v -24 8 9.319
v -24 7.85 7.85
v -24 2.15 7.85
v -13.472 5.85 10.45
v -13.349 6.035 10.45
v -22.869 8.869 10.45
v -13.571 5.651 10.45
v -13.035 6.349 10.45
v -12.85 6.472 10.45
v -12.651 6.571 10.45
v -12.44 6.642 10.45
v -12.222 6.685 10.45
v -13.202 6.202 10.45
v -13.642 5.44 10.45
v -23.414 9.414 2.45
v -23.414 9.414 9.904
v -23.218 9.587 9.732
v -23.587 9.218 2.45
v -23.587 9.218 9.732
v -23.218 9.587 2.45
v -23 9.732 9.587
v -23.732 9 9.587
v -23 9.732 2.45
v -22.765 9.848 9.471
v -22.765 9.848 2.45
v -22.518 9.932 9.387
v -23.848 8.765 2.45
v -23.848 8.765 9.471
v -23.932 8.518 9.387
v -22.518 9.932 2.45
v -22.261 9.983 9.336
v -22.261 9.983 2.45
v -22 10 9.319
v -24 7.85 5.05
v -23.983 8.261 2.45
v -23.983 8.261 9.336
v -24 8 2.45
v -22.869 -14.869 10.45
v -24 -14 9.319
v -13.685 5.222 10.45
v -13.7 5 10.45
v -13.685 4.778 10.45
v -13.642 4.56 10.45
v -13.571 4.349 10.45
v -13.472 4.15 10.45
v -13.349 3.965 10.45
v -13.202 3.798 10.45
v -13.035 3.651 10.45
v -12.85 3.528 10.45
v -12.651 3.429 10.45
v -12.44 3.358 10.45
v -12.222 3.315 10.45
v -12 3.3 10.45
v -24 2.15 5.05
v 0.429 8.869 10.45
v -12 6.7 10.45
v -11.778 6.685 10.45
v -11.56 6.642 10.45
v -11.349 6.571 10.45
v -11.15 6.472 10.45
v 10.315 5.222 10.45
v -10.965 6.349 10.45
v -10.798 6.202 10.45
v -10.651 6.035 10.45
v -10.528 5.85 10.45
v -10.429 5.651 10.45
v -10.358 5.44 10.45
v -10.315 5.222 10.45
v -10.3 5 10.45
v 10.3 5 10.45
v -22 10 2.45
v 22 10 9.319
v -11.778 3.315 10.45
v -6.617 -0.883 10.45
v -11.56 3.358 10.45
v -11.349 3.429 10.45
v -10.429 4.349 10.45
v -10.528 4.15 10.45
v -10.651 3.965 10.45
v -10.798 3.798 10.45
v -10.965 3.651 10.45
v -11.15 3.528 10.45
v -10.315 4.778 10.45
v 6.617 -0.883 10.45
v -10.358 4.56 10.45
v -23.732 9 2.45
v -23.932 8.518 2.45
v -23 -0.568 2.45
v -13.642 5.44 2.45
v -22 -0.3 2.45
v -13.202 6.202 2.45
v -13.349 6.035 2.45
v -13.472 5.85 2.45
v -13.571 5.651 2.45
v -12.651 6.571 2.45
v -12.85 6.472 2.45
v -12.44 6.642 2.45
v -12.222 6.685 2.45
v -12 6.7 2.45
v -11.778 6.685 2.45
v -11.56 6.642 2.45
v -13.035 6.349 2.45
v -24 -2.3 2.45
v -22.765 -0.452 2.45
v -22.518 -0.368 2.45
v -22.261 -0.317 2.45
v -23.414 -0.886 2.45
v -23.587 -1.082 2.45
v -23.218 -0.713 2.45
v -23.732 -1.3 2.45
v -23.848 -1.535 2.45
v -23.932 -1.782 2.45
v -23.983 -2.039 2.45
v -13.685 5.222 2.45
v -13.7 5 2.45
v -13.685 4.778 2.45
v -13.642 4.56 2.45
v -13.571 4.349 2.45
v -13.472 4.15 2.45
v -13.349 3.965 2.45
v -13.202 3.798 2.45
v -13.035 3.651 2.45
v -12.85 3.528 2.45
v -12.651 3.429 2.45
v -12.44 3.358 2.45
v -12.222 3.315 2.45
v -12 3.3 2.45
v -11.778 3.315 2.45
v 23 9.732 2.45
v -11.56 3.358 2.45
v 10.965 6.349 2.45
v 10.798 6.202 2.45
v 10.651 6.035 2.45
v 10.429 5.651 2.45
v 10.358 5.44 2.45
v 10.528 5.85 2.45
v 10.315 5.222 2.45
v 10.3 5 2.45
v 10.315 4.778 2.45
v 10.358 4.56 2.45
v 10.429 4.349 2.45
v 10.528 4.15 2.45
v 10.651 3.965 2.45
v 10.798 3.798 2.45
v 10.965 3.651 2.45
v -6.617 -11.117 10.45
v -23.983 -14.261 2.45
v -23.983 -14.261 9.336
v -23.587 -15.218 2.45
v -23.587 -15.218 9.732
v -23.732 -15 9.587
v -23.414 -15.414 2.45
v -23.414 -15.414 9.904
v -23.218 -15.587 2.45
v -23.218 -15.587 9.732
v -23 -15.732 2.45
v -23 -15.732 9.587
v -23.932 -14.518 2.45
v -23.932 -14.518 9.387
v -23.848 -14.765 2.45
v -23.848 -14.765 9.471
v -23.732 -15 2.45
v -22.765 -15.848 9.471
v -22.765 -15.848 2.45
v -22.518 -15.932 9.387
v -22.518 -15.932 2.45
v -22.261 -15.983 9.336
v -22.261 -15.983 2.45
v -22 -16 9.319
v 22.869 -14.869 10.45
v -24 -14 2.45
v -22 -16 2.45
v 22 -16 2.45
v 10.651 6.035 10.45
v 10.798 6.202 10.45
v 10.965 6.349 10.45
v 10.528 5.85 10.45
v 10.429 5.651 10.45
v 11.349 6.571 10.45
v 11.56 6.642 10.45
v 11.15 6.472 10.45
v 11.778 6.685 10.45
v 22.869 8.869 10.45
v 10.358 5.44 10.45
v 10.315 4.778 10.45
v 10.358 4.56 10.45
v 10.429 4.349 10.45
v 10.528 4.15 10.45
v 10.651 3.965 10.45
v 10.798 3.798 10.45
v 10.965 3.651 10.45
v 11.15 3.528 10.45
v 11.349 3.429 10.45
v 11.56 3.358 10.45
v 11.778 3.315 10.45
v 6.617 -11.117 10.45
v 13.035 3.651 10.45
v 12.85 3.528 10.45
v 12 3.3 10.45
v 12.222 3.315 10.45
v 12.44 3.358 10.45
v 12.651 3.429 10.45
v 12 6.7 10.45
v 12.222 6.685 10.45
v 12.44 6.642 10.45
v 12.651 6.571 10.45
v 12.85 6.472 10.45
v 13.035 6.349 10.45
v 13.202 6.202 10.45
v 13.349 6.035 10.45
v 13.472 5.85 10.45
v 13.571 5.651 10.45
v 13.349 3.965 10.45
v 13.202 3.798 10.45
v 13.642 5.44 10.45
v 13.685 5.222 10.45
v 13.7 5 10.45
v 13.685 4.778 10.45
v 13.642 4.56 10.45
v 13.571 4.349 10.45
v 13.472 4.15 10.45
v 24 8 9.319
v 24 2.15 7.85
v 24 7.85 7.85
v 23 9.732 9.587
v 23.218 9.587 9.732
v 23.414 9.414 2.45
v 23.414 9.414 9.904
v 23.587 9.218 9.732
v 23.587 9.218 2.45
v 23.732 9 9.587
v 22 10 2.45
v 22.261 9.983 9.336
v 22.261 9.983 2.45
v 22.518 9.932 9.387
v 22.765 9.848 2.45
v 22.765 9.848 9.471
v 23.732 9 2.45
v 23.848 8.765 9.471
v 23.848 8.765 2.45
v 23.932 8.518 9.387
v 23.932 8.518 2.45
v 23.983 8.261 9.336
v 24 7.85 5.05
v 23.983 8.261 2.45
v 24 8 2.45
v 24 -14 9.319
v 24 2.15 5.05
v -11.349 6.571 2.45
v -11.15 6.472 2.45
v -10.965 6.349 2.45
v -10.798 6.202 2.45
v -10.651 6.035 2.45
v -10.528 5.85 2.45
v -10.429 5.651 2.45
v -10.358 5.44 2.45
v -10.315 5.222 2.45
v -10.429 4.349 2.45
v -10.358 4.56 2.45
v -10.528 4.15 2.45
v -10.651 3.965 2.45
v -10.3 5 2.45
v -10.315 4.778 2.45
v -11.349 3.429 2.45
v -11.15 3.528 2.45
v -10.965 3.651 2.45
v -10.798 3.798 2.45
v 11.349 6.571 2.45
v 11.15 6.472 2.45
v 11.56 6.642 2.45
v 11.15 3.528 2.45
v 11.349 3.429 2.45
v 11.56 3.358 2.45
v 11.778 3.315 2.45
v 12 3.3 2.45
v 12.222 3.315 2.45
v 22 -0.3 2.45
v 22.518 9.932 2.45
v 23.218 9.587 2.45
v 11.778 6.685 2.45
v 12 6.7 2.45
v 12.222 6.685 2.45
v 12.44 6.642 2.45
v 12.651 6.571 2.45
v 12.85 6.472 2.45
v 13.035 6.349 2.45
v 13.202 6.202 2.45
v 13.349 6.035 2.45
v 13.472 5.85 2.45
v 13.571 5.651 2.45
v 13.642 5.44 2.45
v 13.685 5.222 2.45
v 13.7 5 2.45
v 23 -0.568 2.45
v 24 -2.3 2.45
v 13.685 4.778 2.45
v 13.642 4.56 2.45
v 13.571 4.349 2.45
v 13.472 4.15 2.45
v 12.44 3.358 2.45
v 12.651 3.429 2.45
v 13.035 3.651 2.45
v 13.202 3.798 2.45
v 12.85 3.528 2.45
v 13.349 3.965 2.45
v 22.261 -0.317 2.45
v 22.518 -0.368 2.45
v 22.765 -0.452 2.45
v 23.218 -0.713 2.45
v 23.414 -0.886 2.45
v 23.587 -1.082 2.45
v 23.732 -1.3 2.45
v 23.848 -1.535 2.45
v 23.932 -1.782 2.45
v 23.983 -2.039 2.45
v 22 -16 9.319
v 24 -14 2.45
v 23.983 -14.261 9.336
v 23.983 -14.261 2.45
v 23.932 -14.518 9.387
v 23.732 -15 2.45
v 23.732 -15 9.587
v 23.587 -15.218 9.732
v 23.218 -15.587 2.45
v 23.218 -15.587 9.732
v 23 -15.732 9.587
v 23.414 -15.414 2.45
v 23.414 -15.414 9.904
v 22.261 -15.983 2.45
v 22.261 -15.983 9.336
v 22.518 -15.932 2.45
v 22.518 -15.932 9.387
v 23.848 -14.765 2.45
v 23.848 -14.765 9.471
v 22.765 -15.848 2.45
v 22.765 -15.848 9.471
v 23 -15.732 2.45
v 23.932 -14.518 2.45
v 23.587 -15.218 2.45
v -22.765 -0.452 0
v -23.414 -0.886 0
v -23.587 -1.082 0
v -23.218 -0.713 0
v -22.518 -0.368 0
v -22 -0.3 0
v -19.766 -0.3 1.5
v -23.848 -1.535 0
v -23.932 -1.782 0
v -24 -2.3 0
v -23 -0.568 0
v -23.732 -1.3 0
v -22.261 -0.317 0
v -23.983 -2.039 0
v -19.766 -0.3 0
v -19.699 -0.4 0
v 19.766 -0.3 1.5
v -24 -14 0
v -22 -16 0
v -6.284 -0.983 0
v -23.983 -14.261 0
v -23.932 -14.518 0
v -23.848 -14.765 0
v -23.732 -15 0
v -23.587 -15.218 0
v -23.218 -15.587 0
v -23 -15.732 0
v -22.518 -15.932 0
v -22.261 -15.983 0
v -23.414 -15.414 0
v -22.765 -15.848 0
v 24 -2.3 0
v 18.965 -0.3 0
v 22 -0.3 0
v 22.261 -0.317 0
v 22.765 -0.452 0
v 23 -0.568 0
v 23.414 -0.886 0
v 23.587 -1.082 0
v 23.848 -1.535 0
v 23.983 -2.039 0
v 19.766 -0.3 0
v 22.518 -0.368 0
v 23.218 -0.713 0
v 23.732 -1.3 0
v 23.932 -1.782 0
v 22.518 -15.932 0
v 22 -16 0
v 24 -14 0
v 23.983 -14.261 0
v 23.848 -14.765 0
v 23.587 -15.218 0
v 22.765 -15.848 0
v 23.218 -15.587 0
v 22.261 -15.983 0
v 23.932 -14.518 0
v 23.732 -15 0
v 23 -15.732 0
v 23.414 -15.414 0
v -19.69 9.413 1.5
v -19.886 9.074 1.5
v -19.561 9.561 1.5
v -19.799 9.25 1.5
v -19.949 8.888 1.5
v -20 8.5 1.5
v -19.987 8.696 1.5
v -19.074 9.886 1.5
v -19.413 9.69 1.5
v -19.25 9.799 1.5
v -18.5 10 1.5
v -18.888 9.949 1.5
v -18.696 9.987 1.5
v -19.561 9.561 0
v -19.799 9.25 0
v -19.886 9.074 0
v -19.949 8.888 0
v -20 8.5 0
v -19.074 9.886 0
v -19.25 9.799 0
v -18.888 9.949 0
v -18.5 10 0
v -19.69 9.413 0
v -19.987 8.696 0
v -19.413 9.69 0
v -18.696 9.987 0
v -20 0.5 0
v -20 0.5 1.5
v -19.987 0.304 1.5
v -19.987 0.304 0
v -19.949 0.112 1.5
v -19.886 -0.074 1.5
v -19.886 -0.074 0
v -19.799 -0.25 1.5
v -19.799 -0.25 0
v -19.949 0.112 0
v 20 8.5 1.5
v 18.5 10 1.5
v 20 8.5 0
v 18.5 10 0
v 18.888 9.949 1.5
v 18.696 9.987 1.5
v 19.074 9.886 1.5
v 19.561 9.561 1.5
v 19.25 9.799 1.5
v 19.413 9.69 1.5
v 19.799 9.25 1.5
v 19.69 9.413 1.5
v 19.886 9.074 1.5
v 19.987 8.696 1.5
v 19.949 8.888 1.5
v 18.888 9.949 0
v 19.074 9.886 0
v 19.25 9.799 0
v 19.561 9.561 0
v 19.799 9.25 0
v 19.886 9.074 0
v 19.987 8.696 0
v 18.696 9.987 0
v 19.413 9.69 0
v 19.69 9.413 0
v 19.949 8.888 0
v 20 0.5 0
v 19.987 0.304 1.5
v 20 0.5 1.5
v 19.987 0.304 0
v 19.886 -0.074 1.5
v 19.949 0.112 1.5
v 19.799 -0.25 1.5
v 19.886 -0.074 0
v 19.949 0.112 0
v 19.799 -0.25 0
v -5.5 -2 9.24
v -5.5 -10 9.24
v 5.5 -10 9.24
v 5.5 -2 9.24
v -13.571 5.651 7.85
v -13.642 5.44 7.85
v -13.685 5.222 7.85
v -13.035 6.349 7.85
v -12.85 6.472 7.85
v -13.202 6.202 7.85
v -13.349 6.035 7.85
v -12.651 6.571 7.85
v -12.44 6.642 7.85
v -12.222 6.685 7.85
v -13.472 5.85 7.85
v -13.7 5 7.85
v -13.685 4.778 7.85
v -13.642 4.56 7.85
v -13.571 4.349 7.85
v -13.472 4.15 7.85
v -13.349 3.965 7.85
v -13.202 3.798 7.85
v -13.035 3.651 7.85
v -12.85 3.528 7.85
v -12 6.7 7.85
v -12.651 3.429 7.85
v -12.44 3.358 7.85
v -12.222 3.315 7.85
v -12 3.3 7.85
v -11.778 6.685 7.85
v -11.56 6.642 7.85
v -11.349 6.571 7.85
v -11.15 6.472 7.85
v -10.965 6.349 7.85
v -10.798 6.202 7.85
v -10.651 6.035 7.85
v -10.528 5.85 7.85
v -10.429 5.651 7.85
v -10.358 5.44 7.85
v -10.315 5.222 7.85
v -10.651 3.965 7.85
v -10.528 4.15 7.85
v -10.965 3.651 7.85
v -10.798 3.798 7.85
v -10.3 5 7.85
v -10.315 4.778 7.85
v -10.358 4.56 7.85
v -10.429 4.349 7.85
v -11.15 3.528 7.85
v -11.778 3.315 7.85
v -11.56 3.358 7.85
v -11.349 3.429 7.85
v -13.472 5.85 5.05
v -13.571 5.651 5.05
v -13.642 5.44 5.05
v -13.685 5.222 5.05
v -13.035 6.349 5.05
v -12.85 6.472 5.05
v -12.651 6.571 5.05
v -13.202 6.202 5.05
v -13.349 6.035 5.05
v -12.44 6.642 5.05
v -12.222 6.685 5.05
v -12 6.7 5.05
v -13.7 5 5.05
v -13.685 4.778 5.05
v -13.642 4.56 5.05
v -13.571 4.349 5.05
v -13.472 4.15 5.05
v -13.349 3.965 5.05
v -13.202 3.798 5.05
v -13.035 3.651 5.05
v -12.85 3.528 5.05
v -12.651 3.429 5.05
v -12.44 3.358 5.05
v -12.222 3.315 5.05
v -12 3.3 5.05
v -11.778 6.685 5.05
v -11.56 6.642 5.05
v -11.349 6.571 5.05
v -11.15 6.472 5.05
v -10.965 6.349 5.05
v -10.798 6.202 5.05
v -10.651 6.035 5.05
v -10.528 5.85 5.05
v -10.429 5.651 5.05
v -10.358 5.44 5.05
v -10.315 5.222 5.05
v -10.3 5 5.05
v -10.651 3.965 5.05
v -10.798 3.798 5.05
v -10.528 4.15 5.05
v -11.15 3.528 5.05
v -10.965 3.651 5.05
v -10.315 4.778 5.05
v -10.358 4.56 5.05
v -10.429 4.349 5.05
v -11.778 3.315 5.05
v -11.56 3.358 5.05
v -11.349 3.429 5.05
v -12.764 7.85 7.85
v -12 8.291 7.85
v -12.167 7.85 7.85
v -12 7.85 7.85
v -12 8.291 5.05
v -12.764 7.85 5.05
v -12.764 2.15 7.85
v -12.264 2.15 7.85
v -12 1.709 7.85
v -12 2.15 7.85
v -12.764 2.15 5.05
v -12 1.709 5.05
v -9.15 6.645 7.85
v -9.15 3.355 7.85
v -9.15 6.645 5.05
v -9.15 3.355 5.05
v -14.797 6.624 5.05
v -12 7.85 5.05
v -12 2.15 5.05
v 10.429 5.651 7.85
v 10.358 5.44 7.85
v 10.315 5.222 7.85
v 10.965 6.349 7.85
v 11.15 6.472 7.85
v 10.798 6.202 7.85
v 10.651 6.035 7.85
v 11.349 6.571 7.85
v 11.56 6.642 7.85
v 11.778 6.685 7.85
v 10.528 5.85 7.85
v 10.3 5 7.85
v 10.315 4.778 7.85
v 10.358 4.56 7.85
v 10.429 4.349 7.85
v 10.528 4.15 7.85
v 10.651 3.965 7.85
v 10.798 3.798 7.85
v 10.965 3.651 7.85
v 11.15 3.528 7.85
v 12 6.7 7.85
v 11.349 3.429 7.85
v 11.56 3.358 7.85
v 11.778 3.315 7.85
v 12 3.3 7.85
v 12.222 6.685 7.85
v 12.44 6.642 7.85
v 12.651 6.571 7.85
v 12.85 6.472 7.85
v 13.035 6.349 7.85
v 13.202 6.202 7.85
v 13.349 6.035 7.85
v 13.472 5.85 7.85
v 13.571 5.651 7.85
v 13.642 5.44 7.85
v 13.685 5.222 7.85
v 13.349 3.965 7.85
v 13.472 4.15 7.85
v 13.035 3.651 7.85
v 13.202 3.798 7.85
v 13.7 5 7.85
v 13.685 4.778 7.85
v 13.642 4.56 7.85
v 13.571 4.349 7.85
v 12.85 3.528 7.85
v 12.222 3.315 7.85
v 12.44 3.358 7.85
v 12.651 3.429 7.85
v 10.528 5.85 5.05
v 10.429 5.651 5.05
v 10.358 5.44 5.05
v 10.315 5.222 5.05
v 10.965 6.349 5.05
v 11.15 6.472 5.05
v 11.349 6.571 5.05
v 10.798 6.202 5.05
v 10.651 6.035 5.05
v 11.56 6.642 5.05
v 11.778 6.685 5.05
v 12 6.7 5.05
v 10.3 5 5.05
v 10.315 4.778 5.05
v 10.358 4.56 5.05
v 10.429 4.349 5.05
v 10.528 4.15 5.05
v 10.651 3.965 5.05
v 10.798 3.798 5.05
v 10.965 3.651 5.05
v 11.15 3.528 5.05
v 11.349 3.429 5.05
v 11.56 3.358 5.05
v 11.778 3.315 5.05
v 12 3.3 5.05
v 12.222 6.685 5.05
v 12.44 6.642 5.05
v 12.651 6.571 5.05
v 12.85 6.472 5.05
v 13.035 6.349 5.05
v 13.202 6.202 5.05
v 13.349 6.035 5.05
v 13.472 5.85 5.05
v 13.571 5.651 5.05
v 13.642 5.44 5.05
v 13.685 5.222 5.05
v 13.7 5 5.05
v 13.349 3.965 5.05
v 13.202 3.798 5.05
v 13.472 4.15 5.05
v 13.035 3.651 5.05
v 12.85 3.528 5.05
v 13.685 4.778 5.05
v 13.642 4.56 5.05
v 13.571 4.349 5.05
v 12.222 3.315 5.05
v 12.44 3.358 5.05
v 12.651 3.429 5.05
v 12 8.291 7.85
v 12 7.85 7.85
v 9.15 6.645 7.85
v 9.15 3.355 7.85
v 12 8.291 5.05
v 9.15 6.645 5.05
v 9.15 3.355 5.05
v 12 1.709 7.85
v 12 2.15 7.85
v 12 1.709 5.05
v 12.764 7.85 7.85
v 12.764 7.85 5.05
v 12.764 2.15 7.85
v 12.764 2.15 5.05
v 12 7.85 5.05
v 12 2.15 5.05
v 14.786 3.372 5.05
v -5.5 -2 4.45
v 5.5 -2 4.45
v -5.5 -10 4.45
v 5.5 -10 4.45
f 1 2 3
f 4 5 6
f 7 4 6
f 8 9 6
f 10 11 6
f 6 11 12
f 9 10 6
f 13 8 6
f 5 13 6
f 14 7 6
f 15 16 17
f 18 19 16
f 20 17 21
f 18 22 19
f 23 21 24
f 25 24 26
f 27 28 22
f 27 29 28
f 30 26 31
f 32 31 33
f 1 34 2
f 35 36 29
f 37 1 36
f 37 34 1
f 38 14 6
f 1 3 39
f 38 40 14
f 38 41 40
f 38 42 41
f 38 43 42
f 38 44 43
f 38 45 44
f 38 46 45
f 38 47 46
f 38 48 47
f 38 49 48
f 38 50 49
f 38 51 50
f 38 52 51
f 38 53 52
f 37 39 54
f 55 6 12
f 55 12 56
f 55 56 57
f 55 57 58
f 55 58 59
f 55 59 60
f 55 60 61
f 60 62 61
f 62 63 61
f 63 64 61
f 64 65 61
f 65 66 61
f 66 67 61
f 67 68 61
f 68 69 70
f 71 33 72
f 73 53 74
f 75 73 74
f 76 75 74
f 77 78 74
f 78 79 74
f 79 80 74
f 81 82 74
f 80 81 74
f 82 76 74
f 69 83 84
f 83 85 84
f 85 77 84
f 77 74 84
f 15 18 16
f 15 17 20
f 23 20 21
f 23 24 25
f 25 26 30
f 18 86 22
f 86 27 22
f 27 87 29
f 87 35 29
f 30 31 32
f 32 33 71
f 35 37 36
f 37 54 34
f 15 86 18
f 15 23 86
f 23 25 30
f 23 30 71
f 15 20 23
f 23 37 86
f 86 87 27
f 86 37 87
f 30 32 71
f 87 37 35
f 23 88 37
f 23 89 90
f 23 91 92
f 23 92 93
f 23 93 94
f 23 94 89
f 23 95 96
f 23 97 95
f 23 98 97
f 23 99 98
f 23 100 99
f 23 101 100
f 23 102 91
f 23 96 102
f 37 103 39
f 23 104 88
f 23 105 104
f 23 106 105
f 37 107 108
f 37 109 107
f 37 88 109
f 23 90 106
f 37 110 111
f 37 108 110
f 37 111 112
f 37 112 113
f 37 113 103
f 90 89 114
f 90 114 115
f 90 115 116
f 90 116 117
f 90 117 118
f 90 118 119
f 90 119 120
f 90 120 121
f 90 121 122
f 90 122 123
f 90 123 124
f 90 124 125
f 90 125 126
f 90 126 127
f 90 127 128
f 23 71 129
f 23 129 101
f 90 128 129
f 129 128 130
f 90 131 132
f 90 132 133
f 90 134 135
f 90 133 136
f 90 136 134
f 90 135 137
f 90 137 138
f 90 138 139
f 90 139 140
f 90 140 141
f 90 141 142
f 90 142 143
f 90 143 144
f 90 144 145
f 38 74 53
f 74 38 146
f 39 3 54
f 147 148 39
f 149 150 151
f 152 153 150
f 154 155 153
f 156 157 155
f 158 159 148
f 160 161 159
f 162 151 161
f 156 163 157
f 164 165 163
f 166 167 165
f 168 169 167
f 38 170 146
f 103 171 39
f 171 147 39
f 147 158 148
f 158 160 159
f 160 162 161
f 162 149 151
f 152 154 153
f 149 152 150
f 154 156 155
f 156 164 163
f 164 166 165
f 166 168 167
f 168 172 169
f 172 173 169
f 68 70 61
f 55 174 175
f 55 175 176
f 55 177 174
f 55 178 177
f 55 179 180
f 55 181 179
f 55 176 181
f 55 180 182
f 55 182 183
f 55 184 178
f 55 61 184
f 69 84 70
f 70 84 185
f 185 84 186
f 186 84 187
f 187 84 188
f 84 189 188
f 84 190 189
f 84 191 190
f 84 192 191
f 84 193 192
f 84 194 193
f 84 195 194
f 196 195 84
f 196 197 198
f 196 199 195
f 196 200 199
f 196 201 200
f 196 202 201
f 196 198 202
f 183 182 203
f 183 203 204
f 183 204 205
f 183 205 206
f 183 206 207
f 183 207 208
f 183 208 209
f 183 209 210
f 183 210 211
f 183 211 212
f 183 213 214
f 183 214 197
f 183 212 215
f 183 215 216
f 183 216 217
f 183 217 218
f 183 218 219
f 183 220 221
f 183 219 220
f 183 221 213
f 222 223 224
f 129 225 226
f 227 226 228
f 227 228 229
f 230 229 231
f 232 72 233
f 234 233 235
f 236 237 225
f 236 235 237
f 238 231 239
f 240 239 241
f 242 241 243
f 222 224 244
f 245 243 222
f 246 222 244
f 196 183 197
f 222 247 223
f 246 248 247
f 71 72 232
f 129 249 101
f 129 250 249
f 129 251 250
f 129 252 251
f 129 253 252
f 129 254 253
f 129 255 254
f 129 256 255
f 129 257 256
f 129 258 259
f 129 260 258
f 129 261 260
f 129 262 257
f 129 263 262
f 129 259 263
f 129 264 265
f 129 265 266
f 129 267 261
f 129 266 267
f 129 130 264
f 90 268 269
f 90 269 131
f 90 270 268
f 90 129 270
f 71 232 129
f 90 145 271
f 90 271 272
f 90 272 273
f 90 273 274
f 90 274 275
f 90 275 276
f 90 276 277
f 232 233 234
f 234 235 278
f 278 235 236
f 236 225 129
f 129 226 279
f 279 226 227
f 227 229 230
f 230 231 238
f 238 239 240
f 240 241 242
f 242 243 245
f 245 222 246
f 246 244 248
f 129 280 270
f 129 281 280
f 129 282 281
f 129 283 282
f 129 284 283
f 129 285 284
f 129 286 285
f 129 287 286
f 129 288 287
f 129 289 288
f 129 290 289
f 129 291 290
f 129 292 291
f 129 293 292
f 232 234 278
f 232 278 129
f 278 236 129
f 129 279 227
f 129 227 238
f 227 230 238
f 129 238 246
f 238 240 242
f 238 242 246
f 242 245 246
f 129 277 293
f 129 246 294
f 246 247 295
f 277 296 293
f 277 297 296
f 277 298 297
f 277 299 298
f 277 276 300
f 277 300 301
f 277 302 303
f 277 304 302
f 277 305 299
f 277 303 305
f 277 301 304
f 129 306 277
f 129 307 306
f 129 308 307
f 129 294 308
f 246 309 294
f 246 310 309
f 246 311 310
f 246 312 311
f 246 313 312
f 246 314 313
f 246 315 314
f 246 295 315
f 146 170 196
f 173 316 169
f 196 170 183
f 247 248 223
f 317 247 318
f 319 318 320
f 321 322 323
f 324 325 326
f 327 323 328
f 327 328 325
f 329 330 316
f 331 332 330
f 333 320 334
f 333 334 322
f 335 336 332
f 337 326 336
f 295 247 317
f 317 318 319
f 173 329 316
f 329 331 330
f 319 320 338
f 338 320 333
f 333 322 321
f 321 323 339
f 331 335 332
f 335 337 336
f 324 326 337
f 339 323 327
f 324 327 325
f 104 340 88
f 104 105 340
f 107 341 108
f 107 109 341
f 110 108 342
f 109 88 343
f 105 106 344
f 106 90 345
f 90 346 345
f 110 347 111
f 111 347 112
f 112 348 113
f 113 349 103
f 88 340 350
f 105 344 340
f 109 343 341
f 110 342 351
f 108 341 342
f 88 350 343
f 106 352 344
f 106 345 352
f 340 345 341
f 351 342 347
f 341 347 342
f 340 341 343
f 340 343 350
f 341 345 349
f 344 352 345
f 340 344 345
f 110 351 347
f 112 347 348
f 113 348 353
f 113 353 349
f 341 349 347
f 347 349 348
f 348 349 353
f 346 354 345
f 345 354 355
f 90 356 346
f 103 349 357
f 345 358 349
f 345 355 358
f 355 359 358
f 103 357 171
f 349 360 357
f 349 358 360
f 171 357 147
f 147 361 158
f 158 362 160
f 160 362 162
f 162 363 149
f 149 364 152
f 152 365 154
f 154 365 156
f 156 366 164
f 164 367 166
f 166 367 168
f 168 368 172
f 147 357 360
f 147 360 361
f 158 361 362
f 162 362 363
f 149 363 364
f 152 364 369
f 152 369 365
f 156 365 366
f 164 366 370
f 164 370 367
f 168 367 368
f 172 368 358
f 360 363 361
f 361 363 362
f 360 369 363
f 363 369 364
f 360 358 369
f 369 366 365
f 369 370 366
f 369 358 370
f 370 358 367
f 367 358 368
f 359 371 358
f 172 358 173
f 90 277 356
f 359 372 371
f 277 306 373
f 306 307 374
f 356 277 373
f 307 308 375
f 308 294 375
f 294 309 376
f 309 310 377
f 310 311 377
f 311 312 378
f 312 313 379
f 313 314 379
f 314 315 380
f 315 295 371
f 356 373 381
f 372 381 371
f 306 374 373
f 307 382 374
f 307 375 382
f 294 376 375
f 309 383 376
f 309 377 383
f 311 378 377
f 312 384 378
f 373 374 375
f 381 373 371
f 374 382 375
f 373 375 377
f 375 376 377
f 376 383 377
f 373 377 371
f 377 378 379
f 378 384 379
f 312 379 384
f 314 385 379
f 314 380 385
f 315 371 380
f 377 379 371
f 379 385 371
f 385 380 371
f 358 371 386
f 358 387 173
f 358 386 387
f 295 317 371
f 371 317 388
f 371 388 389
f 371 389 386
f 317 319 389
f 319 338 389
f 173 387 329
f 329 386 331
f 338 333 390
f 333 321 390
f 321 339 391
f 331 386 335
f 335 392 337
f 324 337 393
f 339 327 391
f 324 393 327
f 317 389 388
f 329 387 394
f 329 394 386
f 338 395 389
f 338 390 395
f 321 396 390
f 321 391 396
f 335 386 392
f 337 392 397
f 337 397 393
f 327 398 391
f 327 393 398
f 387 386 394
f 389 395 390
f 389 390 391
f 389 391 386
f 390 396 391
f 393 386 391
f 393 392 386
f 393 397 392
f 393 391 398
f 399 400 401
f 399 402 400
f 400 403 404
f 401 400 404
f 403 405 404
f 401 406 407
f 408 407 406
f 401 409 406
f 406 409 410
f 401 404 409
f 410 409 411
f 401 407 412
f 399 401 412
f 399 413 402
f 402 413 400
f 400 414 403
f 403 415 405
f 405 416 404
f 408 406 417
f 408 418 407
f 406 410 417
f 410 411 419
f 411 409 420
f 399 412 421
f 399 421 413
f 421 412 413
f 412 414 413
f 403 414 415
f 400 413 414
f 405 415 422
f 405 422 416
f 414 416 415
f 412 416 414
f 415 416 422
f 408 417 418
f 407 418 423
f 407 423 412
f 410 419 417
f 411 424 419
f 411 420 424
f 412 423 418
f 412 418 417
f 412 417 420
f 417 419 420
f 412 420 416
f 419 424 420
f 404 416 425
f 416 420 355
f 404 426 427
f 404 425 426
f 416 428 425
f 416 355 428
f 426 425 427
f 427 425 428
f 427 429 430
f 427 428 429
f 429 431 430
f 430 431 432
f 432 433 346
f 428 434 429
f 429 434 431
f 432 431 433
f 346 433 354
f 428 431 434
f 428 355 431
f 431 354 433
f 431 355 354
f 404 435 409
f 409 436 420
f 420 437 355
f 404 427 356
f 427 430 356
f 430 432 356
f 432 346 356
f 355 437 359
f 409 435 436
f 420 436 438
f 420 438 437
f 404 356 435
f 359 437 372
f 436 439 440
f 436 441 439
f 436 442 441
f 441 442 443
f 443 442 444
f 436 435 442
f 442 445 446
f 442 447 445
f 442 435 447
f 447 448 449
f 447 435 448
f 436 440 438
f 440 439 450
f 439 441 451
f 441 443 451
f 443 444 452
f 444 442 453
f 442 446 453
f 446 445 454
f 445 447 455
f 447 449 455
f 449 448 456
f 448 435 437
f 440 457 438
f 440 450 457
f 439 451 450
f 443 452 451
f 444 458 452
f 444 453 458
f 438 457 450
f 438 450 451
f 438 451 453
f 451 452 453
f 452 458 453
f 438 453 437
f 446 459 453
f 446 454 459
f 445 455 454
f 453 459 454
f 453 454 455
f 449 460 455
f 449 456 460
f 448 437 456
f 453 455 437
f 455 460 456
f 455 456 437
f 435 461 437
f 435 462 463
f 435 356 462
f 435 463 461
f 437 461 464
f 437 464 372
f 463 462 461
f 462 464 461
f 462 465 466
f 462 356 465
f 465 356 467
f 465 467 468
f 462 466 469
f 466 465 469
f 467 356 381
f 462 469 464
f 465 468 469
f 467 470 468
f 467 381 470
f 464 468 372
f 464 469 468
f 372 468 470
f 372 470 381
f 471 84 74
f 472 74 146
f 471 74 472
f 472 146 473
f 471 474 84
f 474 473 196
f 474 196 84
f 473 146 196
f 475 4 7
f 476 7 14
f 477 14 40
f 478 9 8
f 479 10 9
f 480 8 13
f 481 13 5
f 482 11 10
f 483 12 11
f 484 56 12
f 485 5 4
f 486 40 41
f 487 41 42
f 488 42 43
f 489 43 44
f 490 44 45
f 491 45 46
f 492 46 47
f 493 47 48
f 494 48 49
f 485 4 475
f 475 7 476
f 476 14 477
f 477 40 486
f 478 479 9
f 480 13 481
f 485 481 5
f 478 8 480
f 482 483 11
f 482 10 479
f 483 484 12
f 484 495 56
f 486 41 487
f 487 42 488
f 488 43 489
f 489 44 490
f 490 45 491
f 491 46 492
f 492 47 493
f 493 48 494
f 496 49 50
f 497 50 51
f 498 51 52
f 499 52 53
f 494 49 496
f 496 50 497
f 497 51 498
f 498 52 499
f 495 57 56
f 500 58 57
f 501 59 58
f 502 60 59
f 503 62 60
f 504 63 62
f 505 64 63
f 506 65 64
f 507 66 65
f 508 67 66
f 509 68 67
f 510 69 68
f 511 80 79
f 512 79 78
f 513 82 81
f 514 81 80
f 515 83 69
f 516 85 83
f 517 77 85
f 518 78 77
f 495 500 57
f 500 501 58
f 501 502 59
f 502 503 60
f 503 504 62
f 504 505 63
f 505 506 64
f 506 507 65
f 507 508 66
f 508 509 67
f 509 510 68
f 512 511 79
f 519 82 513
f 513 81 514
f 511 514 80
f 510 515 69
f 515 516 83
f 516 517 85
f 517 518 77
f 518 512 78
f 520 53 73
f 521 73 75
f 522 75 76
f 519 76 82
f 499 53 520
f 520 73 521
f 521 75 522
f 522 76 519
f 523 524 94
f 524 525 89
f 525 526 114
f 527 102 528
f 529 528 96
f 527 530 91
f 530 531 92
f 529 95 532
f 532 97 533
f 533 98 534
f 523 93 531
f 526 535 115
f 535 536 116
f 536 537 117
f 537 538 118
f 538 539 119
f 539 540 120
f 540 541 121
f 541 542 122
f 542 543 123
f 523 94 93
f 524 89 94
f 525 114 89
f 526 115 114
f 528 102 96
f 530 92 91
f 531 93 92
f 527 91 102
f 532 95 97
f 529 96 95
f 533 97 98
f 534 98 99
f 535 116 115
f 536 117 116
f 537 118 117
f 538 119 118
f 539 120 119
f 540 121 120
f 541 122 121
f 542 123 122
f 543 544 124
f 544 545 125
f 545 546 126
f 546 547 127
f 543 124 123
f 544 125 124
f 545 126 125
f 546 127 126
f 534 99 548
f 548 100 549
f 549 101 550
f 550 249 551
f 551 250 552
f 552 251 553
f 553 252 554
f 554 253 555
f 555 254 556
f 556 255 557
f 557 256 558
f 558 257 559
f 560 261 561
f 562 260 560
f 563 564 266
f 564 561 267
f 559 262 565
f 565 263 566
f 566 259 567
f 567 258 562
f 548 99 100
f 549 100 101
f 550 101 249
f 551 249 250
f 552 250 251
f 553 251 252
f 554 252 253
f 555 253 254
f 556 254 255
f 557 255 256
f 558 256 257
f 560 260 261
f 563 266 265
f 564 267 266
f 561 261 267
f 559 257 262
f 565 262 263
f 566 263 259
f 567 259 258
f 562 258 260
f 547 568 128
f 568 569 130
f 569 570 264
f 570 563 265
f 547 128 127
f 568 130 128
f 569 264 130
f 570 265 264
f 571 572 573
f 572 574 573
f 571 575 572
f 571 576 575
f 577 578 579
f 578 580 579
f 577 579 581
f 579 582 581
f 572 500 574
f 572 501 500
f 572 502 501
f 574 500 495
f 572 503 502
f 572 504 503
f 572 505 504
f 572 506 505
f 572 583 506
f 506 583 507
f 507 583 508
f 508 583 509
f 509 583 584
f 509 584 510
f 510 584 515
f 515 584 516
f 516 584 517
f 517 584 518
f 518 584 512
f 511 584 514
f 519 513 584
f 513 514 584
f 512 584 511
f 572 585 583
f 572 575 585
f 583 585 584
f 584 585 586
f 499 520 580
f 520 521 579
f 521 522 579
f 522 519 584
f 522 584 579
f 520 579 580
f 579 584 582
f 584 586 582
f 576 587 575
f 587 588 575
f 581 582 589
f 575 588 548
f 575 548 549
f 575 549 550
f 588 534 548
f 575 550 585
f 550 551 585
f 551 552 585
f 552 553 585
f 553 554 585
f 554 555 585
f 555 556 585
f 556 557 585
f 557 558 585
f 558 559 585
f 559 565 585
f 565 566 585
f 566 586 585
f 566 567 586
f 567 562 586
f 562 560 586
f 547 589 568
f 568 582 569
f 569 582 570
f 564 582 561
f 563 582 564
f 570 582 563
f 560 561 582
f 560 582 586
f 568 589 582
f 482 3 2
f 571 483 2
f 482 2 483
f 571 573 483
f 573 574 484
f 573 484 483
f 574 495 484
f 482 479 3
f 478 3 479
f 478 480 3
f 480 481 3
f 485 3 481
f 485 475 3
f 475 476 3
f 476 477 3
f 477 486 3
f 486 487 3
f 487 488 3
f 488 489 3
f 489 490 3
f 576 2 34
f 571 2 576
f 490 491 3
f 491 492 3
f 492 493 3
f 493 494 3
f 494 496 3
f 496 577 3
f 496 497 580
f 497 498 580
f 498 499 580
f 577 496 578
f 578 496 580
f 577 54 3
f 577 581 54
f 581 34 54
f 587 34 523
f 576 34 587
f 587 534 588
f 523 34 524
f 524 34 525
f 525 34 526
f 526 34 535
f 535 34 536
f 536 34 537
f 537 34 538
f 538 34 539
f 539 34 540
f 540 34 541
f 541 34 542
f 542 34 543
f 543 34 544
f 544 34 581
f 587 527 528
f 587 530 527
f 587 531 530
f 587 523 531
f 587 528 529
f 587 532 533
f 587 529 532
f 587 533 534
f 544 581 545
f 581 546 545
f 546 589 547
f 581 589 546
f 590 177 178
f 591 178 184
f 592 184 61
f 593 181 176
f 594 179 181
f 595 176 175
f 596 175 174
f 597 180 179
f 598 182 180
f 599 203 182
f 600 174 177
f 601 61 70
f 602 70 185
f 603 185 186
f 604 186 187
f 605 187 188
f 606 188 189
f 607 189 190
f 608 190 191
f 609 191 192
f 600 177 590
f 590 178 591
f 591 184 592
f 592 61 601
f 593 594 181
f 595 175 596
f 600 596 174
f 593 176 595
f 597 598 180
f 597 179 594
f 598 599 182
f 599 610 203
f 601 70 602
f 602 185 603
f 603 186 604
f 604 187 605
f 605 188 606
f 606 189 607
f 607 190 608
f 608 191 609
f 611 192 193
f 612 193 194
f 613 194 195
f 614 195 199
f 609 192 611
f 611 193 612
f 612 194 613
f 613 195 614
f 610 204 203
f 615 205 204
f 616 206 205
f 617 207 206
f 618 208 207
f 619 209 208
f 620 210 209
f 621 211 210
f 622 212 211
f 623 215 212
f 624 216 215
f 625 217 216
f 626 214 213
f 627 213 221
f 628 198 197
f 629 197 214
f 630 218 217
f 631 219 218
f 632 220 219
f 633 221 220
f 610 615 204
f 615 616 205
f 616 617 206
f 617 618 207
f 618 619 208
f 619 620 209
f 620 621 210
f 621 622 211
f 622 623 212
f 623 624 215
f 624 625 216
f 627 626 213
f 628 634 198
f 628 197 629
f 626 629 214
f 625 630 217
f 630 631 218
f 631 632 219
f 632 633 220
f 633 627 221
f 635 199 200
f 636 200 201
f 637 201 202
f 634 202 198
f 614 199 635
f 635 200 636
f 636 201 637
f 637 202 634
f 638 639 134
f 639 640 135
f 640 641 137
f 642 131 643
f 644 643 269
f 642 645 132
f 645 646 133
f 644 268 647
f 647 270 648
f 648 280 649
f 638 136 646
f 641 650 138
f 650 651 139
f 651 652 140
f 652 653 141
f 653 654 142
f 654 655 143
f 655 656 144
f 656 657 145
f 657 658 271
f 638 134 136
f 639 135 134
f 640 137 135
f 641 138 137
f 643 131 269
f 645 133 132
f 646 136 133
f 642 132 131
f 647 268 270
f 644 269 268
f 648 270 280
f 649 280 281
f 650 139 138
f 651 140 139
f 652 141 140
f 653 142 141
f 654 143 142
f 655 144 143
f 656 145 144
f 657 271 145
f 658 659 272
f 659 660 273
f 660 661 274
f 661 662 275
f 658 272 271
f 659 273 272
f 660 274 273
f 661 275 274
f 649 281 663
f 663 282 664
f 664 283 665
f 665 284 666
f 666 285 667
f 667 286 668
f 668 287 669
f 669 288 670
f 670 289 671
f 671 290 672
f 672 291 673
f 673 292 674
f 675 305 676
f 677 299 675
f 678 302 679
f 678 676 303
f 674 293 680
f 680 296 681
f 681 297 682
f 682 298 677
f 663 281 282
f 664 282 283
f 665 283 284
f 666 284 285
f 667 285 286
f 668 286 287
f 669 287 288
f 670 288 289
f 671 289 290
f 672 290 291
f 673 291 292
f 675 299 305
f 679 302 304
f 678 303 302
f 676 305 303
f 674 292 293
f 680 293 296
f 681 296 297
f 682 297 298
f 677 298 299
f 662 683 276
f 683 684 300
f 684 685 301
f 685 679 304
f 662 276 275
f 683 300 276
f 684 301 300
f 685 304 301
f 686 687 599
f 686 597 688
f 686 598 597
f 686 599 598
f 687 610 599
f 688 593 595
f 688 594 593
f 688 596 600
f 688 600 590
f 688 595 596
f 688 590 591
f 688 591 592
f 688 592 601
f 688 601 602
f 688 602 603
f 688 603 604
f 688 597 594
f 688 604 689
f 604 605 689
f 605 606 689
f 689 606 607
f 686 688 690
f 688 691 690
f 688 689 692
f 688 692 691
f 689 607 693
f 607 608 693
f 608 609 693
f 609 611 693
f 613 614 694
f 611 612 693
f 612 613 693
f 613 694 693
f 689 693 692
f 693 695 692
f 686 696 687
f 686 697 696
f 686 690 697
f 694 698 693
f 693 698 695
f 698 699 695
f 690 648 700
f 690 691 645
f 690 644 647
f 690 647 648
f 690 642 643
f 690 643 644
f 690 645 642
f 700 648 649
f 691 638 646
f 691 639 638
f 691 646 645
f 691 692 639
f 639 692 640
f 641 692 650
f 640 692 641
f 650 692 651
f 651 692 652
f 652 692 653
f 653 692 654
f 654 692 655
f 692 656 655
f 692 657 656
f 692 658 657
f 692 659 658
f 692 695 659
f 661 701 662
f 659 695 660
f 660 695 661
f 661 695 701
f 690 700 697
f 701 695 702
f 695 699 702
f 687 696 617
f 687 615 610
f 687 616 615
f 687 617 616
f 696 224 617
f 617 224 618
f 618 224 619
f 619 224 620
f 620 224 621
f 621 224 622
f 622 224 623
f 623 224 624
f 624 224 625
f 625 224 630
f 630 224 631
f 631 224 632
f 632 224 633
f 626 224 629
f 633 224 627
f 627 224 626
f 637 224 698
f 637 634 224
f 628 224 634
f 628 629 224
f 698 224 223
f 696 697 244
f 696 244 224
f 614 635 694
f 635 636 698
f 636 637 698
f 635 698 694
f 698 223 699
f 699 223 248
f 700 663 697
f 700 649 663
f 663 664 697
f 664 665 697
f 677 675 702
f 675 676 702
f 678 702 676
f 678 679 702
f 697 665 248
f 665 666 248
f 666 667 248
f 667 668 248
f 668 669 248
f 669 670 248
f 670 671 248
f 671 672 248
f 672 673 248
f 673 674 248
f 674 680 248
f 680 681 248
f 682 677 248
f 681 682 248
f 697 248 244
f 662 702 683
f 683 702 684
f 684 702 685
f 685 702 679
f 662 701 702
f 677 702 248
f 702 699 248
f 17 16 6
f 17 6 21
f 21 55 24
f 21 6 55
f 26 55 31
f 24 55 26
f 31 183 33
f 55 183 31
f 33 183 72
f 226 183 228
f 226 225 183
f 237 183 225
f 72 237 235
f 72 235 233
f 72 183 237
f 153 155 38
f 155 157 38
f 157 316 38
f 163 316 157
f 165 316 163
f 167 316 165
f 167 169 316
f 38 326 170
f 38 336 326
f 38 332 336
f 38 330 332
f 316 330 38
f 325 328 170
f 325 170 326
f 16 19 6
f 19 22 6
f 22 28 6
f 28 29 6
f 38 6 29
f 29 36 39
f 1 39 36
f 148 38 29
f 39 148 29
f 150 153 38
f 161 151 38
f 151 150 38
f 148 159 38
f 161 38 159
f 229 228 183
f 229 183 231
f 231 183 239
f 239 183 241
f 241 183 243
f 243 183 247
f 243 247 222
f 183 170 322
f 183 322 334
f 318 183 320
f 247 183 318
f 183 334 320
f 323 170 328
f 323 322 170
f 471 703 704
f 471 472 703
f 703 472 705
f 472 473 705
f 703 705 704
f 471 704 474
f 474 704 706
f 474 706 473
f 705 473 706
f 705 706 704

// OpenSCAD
// file: lib/comun.scad
// =====================================================================
// AutoSwapEnder3Pro - parametros y utilidades comunes de las piezas
// Licencia MIT. Unidades: milimetros.
//
// Sistema de coordenadas de la ESTACION (el mismo en todas las piezas que
// se montan en ella):
//   s : a lo largo de la estacion, 0 = HOME del carro, crece hacia la impresora
//   x : a lo ancho, 0 = eje central (riel lineal), +x = lado de la caja de descarga
//   z : vertical, 0 = cara superior de la base de perfiles 2020 ("b" en la guia)
// El plano de transferencia (superficie por la que se deslizan las placas)
// esta en z = PLANO. Se ajusta a la altura de la cama de la impresora con las
// patas niveladoras, NO cambiando estas piezas.
// =====================================================================

$fn = 48;

// ----------------------------------------------------- placas y cama
placa_ancho  = 235;     // placa PEI
placa_largo  = 235;
placa_esp    = 0.6;     // espesor real de tus placas (mide con calibrador; 0.5 a 0.75)
voladizo     = 11;      // cuanto sobresale la placa (o su lengüeta) por delante de la cama

// ----------------------------------------------------- estacion (alturas sobre la base)
PLANO        = 60;      // plano de transferencia sobre la cara superior de la base
RIEL_SUP     = 20;      // cara superior del riel lineal (2020 apoyado en los travesaños)
ZP           = PLANO - RIEL_SUP;  // = 40: plano de transferencia sobre el riel lineal

// zapata (debe coincidir con zapata.scad)
zapata_bajo  = 8;       // cuanto cuelga la zapata por debajo de la placa
zapata_bolsillo = 6;    // profundidad del bolsillo para el dedo (desde abajo)

// cargador (ascensor)
paso_estante = 14;      // distancia vertical entre placas en el cargador
niveles      = 6;       // placas que caben en el cargador

// ----------------------------------------------------- perfil y tornilleria
perfil      = 20;       // perfil de aluminio 2020
ranura_ancho = 6.2;     // boca de la ranura (serie 20)
holgura     = 0.3;      // holgura general de impresion

m2_paso     = 1.8;   // agujero para autorroscante M2 (servos)
m3          = 3.4;   // paso libre M3
m3_rosca    = 2.7;   // para roscar M3 directamente en plastico
m3_tuerca   = 5.7;   // M3: entre caras + holgura
m3_tuerca_h = 2.6;
m3_cabeza   = 6.2;
m4          = 4.4;
m5          = 5.4;   // paso libre M5
m5_cabeza   = 9.2;
m5_tuerca   = 8.2;   // M5: entre caras + holgura

// ruedas en V estandar (Openbuilds "Solid V Wheel" + rodamientos 625)
rueda_d      = 23.9;
rueda_ancho  = 10.2;
rueda_sep    = 39.26;   // distancia entre centros de ruedas a ambos lados de un 2020
excentrica_d = 7.2;     // alojamiento del espaciador excentrico
espaciador_h = 6;       // espaciador (excentrico o fijo) entre rueda y placa

// ----------------------------------------------------- utilidades

// Caja con aristas verticales redondeadas (r) apoyada en z=0.
module caja_r(size, r = 2) {
  r2 = min(r, size[0] / 2 - 0.01, size[1] / 2 - 0.01);
  hull() for (ix = [r2, size[0] - r2], iy = [r2, size[1] - r2])
    translate([ix, iy, 0]) cylinder(r = r2, h = size[2]);
}

// Igual pero centrada en x e y.
module caja_rc(size, r = 2) { translate([-size[0] / 2, -size[1] / 2, 0]) caja_r(size, r); }

// Prisma hexagonal para tuercas (ec = medida entre caras).
module hexagono(ec, h) { cylinder(d = ec / cos(30), h = h, $fn = 6); }

// Ranura (agujero alargado) a lo largo de x.
module ranura(largo, d, h) {
  hull() for (i = [-largo / 2, largo / 2]) translate([i, 0, 0]) cylinder(d = d, h = h);
}

// Taladro M5 con avellanado para la cabeza (para atornillar a un perfil con tuerca en T).
module taladro_m5(h, cabeza = 4) {
  translate([0, 0, -0.1]) cylinder(d = m5, h = h + 0.2);
  translate([0, 0, h - cabeza]) cylinder(d = m5_cabeza + 0.6, h = cabeza + 0.1);
}

// Taladro M3 pasante con alojamiento de tuerca hexagonal por debajo.
module taladro_m3_tuerca(h, prof_tuerca = m3_tuerca_h + 0.2) {
  translate([0, 0, -0.1]) cylinder(d = m3, h = h + 0.2);
  translate([0, 0, -0.1]) hexagono(m3_tuerca, prof_tuerca + 0.1);
}

// Perfil 2020 de referencia (solo para ensamble y comprobaciones visuales).
module perfil2020(largo) {
  difference() {
    translate([-10, -10, 0]) cube([20, 20, largo]);
    for (a = [0, 90, 180, 270]) rotate([0, 0, a])
      translate([10 - 1.8, -ranura_ancho / 2, -1]) cube([2, ranura_ancho, largo + 2]);
    translate([0, 0, -1]) cylinder(d = 4.2, h = largo + 2);
  }
}

// Microinterruptor KW11-3Z con palanca de rodillo (referencia: 20 x 6.4 x 10 mm,
// taladros M2 a 9.5 mm). Agujeros de montaje, con la cara de montaje en z=0.
module taladros_kw11(h = 10) {
  for (i = [-4.75, 4.75]) translate([i, 0, -0.1]) cylinder(d = 2.2, h = h + 0.2);
}
// main file
// =====================================================================
// ZAPATA - se sujeta al borde delantero de cada placa PEI (1 por placa)
// Material: ABS o ASA (PETG como minimo). 4 perimetros, 40 % relleno.
// Imprimir en la orientacion del STL (labio superior apoyado en la cama).
//
// Funcion: el dedo del carro entra en el BOLSILLO inferior para tirar de la
// placa (expulsar) y para empujarla (cargar). La placa queda pinzada entre el
// labio superior y 2 prisioneros M3 x 8 (sin taladrar la placa).
//
// Coordenadas: y = 0 en el borde de la placa; y < 0 hacia la cama (encima de
// la placa); y > 0 hacia la estacion. z = 0 en la cara inferior de la placa.
// =====================================================================
include <lib/comun.scad>

abrazadera = min(10, voladizo - 1); // tramo que pinza la placa (debe quedar delante de la cama)
frente     = 16;    // cuanto sobresale hacia la estacion desde el borde de la placa
ancho_inf  = 48;    // ancho del cuerpo inferior (los rodillos de los sensores pisan aqui)
ancho_lab  = 40;    // ancho del labio superior
bajo       = zapata_bajo;    // 8 mm por debajo de la placa
labio      = 1.5;   // espesor del labio (queda 1.85 mm por encima de la placa)
ranura_h   = placa_esp + 0.35;
alto       = ranura_h + labio;
// bolsillo del dedo
bol_x      = 11;    // ancho (el dedo mide 6)
bol_y0     = 2;     // empieza 2 mm por delante del borde de la placa
bol_y      = 8;     // largo (el dedo mide 5)
bol_h      = zapata_bolsillo;
// prisioneros
pris_x     = 12;
pris_y     = -abrazadera / 2;
tuerca_z   = -4;

module zapata() {
  difference() {
    union() {
      // cuerpo inferior
      translate([-ancho_inf / 2, -abrazadera, -bajo]) caja_r([ancho_inf, abrazadera + frente, bajo], 2);
      // pared frontal (el borde de la placa apoya aqui al empujar)
      translate([-ancho_inf / 2, 0.3, 0]) caja_r([ancho_inf, frente - 0.3, alto], 2);
      // labio superior
      translate([-ancho_lab / 2, -abrazadera, ranura_h]) caja_r([ancho_lab, abrazadera + 1, labio], 1.5);
    }
    // bolsillo del dedo con chaflan de entrada
    translate([-bol_x / 2, bol_y0, -bajo - 0.1]) cube([bol_x, bol_y, bol_h + 0.1]);
    hull() {
      translate([-bol_x / 2, bol_y0, -bajo - 0.1]) cube([bol_x, bol_y, 0.01]);
      translate([-bol_x / 2 - 1.2, bol_y0 - 1.2, -bajo - 0.1]) cube([bol_x + 2.4, bol_y + 2.4, 0.01]);
      translate([-bol_x / 2, bol_y0, -bajo + 1.2]) cube([bol_x, bol_y, 0.01]);
    }
    // prisioneros M3 desde abajo + tuercas insertadas por los costados
    for (sx = [-1, 1]) {
      translate([sx * pris_x, pris_y, -bajo - 0.1]) cylinder(d = m3, h = bajo + 0.2);
      translate([sx * pris_x, pris_y, tuerca_z - m3_tuerca_h / 2 - 0.1]) rotate([0, 0, 30])
        hexagono(m3_tuerca, m3_tuerca_h + 0.2);
      // canal para meter la tuerca desde el lateral
      translate([sx > 0 ? sx * pris_x : -ancho_inf / 2 - 1, pris_y - m3_tuerca / 2, tuerca_z - m3_tuerca_h / 2 - 0.1])
        cube([ancho_inf / 2 - pris_x + 1, m3_tuerca, m3_tuerca_h + 0.2]);
    }
    // chaflanes inferiores (los rodillos de los sensores y las transiciones no se enganchan)
    for (sy = [-abrazadera, frente]) translate([0, sy, -bajo]) rotate([45, 0, 0])
      cube([ancho_inf + 2, 1.6, 1.6], center = true);
    for (sx = [-ancho_inf / 2, ancho_inf / 2]) translate([sx, (frente - abrazadera) / 2, -bajo]) rotate([0, 45, 0])
      cube([1.6, abrazadera + frente + 2, 1.6], center = true);
  }
}

// Orientacion de impresion: boca abajo (el labio apoyado en la cama de la impresora)
rotate([180, 0, 0]) translate([0, 0, -alto]) zapata();
